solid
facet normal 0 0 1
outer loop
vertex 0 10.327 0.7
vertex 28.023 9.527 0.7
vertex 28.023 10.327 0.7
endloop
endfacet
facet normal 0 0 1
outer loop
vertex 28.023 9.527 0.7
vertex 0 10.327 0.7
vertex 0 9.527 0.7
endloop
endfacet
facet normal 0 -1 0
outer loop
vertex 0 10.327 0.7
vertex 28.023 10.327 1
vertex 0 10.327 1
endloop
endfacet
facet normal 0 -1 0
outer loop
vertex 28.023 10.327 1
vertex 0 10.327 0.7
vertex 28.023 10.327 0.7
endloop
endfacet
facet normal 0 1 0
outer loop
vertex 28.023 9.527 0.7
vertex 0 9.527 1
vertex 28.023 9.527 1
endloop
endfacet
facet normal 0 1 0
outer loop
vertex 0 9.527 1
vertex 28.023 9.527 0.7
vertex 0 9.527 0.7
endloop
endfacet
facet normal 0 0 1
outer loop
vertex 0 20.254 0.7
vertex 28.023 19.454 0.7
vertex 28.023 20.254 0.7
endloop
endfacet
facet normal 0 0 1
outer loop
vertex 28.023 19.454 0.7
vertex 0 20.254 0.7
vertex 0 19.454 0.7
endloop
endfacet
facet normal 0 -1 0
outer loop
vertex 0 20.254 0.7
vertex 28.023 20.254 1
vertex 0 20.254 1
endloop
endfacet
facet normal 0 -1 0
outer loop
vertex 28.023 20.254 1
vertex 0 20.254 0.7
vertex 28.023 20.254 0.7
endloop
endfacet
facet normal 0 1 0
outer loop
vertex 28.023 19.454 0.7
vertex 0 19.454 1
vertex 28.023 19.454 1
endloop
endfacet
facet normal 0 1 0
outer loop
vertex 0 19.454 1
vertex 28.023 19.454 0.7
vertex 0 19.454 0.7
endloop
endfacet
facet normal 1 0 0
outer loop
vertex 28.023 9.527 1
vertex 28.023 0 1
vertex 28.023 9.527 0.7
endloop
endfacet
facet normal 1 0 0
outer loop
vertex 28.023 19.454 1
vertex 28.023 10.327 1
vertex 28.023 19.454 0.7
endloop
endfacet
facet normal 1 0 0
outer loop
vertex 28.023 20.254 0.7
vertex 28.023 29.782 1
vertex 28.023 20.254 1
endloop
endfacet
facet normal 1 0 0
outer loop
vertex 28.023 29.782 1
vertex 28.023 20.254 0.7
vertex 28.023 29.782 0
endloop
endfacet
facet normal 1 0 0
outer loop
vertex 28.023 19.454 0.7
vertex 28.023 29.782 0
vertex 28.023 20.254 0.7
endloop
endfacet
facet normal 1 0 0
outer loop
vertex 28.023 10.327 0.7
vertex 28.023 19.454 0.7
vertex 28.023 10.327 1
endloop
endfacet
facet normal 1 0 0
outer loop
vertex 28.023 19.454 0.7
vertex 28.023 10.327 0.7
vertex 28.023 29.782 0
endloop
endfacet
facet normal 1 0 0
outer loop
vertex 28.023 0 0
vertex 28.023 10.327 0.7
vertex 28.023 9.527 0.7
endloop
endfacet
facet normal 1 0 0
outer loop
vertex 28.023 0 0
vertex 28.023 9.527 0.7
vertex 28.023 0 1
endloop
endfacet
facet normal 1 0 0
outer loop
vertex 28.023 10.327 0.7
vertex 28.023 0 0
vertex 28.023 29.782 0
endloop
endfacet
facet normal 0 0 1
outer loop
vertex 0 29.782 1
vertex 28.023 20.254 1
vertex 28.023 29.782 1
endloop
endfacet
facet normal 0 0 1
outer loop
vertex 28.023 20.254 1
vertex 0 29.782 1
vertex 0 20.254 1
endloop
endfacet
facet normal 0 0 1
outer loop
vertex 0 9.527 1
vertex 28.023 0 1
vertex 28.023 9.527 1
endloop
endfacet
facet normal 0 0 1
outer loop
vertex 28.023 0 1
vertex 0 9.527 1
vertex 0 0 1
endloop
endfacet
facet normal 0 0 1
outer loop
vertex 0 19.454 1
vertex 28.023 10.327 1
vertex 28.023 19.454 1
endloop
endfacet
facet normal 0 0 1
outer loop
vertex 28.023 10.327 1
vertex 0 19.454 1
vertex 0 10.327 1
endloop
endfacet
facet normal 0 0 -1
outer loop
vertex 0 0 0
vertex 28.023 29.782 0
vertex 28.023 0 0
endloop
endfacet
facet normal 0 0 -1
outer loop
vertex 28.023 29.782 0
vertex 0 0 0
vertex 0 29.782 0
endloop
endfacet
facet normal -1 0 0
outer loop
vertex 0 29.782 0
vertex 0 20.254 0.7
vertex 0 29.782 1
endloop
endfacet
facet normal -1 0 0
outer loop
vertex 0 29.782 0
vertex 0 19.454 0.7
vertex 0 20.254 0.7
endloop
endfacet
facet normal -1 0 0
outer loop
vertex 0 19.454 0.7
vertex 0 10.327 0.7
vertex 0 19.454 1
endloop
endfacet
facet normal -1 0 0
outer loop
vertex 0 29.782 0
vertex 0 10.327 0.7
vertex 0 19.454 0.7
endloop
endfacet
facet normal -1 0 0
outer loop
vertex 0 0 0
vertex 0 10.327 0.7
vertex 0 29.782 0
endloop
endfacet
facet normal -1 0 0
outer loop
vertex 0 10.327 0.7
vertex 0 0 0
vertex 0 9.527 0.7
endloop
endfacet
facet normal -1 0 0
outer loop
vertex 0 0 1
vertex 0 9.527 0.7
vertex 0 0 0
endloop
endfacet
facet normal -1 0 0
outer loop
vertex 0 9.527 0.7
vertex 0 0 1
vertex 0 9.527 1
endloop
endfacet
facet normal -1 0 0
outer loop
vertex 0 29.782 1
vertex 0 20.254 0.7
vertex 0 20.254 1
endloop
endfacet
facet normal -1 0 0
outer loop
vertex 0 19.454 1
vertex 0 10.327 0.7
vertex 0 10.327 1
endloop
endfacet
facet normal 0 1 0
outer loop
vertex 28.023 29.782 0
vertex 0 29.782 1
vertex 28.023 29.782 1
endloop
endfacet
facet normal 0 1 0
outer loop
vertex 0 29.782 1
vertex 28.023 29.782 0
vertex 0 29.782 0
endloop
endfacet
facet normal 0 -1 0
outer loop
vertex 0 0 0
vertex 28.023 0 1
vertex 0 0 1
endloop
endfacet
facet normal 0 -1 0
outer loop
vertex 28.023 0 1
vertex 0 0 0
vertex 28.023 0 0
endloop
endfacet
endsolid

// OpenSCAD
/*
 * PROMPT: H0 scale (1:87) ISO shipping container sealed nose end panel, flat for
 * printing. 28.0 mm × 29.8 mm × 1 mm. Two horizontal rail grooves evenly spaced
 * in Y on the exterior face, 0.8 mm wide, 0.3 mm deep, running full width.
 */

$fn = 32;
S = 1 / 87;

panel_t    = 1.0;

ctnr_w     = 2438 * S;   // 28.0 mm — panel width
ctnr_h     = 2591 * S;   // 29.8 mm — panel height

nose_rails = 2;
rail_w     = 0.8;   // groove width (mm)
rail_d     = 0.3;   // groove depth (mm)

module nose_end_panel() {
    // X = panel width (ctnr_w), Y = panel height (ctnr_h), Z = thickness
    // exterior face is at Z = panel_t (face-up when printing)
    difference() {
        cube([ctnr_w, ctnr_h, panel_t]);
        // horizontal rail grooves evenly spaced along Y
        for (i = [1 : nose_rails]) {
            y = i * ctnr_h / (nose_rails + 1);
            translate([-1, y - rail_w/2, panel_t - rail_d])
                cube([ctnr_w + 2, rail_w, rail_d + 1]);
        }
    }
}

nose_end_panel();
